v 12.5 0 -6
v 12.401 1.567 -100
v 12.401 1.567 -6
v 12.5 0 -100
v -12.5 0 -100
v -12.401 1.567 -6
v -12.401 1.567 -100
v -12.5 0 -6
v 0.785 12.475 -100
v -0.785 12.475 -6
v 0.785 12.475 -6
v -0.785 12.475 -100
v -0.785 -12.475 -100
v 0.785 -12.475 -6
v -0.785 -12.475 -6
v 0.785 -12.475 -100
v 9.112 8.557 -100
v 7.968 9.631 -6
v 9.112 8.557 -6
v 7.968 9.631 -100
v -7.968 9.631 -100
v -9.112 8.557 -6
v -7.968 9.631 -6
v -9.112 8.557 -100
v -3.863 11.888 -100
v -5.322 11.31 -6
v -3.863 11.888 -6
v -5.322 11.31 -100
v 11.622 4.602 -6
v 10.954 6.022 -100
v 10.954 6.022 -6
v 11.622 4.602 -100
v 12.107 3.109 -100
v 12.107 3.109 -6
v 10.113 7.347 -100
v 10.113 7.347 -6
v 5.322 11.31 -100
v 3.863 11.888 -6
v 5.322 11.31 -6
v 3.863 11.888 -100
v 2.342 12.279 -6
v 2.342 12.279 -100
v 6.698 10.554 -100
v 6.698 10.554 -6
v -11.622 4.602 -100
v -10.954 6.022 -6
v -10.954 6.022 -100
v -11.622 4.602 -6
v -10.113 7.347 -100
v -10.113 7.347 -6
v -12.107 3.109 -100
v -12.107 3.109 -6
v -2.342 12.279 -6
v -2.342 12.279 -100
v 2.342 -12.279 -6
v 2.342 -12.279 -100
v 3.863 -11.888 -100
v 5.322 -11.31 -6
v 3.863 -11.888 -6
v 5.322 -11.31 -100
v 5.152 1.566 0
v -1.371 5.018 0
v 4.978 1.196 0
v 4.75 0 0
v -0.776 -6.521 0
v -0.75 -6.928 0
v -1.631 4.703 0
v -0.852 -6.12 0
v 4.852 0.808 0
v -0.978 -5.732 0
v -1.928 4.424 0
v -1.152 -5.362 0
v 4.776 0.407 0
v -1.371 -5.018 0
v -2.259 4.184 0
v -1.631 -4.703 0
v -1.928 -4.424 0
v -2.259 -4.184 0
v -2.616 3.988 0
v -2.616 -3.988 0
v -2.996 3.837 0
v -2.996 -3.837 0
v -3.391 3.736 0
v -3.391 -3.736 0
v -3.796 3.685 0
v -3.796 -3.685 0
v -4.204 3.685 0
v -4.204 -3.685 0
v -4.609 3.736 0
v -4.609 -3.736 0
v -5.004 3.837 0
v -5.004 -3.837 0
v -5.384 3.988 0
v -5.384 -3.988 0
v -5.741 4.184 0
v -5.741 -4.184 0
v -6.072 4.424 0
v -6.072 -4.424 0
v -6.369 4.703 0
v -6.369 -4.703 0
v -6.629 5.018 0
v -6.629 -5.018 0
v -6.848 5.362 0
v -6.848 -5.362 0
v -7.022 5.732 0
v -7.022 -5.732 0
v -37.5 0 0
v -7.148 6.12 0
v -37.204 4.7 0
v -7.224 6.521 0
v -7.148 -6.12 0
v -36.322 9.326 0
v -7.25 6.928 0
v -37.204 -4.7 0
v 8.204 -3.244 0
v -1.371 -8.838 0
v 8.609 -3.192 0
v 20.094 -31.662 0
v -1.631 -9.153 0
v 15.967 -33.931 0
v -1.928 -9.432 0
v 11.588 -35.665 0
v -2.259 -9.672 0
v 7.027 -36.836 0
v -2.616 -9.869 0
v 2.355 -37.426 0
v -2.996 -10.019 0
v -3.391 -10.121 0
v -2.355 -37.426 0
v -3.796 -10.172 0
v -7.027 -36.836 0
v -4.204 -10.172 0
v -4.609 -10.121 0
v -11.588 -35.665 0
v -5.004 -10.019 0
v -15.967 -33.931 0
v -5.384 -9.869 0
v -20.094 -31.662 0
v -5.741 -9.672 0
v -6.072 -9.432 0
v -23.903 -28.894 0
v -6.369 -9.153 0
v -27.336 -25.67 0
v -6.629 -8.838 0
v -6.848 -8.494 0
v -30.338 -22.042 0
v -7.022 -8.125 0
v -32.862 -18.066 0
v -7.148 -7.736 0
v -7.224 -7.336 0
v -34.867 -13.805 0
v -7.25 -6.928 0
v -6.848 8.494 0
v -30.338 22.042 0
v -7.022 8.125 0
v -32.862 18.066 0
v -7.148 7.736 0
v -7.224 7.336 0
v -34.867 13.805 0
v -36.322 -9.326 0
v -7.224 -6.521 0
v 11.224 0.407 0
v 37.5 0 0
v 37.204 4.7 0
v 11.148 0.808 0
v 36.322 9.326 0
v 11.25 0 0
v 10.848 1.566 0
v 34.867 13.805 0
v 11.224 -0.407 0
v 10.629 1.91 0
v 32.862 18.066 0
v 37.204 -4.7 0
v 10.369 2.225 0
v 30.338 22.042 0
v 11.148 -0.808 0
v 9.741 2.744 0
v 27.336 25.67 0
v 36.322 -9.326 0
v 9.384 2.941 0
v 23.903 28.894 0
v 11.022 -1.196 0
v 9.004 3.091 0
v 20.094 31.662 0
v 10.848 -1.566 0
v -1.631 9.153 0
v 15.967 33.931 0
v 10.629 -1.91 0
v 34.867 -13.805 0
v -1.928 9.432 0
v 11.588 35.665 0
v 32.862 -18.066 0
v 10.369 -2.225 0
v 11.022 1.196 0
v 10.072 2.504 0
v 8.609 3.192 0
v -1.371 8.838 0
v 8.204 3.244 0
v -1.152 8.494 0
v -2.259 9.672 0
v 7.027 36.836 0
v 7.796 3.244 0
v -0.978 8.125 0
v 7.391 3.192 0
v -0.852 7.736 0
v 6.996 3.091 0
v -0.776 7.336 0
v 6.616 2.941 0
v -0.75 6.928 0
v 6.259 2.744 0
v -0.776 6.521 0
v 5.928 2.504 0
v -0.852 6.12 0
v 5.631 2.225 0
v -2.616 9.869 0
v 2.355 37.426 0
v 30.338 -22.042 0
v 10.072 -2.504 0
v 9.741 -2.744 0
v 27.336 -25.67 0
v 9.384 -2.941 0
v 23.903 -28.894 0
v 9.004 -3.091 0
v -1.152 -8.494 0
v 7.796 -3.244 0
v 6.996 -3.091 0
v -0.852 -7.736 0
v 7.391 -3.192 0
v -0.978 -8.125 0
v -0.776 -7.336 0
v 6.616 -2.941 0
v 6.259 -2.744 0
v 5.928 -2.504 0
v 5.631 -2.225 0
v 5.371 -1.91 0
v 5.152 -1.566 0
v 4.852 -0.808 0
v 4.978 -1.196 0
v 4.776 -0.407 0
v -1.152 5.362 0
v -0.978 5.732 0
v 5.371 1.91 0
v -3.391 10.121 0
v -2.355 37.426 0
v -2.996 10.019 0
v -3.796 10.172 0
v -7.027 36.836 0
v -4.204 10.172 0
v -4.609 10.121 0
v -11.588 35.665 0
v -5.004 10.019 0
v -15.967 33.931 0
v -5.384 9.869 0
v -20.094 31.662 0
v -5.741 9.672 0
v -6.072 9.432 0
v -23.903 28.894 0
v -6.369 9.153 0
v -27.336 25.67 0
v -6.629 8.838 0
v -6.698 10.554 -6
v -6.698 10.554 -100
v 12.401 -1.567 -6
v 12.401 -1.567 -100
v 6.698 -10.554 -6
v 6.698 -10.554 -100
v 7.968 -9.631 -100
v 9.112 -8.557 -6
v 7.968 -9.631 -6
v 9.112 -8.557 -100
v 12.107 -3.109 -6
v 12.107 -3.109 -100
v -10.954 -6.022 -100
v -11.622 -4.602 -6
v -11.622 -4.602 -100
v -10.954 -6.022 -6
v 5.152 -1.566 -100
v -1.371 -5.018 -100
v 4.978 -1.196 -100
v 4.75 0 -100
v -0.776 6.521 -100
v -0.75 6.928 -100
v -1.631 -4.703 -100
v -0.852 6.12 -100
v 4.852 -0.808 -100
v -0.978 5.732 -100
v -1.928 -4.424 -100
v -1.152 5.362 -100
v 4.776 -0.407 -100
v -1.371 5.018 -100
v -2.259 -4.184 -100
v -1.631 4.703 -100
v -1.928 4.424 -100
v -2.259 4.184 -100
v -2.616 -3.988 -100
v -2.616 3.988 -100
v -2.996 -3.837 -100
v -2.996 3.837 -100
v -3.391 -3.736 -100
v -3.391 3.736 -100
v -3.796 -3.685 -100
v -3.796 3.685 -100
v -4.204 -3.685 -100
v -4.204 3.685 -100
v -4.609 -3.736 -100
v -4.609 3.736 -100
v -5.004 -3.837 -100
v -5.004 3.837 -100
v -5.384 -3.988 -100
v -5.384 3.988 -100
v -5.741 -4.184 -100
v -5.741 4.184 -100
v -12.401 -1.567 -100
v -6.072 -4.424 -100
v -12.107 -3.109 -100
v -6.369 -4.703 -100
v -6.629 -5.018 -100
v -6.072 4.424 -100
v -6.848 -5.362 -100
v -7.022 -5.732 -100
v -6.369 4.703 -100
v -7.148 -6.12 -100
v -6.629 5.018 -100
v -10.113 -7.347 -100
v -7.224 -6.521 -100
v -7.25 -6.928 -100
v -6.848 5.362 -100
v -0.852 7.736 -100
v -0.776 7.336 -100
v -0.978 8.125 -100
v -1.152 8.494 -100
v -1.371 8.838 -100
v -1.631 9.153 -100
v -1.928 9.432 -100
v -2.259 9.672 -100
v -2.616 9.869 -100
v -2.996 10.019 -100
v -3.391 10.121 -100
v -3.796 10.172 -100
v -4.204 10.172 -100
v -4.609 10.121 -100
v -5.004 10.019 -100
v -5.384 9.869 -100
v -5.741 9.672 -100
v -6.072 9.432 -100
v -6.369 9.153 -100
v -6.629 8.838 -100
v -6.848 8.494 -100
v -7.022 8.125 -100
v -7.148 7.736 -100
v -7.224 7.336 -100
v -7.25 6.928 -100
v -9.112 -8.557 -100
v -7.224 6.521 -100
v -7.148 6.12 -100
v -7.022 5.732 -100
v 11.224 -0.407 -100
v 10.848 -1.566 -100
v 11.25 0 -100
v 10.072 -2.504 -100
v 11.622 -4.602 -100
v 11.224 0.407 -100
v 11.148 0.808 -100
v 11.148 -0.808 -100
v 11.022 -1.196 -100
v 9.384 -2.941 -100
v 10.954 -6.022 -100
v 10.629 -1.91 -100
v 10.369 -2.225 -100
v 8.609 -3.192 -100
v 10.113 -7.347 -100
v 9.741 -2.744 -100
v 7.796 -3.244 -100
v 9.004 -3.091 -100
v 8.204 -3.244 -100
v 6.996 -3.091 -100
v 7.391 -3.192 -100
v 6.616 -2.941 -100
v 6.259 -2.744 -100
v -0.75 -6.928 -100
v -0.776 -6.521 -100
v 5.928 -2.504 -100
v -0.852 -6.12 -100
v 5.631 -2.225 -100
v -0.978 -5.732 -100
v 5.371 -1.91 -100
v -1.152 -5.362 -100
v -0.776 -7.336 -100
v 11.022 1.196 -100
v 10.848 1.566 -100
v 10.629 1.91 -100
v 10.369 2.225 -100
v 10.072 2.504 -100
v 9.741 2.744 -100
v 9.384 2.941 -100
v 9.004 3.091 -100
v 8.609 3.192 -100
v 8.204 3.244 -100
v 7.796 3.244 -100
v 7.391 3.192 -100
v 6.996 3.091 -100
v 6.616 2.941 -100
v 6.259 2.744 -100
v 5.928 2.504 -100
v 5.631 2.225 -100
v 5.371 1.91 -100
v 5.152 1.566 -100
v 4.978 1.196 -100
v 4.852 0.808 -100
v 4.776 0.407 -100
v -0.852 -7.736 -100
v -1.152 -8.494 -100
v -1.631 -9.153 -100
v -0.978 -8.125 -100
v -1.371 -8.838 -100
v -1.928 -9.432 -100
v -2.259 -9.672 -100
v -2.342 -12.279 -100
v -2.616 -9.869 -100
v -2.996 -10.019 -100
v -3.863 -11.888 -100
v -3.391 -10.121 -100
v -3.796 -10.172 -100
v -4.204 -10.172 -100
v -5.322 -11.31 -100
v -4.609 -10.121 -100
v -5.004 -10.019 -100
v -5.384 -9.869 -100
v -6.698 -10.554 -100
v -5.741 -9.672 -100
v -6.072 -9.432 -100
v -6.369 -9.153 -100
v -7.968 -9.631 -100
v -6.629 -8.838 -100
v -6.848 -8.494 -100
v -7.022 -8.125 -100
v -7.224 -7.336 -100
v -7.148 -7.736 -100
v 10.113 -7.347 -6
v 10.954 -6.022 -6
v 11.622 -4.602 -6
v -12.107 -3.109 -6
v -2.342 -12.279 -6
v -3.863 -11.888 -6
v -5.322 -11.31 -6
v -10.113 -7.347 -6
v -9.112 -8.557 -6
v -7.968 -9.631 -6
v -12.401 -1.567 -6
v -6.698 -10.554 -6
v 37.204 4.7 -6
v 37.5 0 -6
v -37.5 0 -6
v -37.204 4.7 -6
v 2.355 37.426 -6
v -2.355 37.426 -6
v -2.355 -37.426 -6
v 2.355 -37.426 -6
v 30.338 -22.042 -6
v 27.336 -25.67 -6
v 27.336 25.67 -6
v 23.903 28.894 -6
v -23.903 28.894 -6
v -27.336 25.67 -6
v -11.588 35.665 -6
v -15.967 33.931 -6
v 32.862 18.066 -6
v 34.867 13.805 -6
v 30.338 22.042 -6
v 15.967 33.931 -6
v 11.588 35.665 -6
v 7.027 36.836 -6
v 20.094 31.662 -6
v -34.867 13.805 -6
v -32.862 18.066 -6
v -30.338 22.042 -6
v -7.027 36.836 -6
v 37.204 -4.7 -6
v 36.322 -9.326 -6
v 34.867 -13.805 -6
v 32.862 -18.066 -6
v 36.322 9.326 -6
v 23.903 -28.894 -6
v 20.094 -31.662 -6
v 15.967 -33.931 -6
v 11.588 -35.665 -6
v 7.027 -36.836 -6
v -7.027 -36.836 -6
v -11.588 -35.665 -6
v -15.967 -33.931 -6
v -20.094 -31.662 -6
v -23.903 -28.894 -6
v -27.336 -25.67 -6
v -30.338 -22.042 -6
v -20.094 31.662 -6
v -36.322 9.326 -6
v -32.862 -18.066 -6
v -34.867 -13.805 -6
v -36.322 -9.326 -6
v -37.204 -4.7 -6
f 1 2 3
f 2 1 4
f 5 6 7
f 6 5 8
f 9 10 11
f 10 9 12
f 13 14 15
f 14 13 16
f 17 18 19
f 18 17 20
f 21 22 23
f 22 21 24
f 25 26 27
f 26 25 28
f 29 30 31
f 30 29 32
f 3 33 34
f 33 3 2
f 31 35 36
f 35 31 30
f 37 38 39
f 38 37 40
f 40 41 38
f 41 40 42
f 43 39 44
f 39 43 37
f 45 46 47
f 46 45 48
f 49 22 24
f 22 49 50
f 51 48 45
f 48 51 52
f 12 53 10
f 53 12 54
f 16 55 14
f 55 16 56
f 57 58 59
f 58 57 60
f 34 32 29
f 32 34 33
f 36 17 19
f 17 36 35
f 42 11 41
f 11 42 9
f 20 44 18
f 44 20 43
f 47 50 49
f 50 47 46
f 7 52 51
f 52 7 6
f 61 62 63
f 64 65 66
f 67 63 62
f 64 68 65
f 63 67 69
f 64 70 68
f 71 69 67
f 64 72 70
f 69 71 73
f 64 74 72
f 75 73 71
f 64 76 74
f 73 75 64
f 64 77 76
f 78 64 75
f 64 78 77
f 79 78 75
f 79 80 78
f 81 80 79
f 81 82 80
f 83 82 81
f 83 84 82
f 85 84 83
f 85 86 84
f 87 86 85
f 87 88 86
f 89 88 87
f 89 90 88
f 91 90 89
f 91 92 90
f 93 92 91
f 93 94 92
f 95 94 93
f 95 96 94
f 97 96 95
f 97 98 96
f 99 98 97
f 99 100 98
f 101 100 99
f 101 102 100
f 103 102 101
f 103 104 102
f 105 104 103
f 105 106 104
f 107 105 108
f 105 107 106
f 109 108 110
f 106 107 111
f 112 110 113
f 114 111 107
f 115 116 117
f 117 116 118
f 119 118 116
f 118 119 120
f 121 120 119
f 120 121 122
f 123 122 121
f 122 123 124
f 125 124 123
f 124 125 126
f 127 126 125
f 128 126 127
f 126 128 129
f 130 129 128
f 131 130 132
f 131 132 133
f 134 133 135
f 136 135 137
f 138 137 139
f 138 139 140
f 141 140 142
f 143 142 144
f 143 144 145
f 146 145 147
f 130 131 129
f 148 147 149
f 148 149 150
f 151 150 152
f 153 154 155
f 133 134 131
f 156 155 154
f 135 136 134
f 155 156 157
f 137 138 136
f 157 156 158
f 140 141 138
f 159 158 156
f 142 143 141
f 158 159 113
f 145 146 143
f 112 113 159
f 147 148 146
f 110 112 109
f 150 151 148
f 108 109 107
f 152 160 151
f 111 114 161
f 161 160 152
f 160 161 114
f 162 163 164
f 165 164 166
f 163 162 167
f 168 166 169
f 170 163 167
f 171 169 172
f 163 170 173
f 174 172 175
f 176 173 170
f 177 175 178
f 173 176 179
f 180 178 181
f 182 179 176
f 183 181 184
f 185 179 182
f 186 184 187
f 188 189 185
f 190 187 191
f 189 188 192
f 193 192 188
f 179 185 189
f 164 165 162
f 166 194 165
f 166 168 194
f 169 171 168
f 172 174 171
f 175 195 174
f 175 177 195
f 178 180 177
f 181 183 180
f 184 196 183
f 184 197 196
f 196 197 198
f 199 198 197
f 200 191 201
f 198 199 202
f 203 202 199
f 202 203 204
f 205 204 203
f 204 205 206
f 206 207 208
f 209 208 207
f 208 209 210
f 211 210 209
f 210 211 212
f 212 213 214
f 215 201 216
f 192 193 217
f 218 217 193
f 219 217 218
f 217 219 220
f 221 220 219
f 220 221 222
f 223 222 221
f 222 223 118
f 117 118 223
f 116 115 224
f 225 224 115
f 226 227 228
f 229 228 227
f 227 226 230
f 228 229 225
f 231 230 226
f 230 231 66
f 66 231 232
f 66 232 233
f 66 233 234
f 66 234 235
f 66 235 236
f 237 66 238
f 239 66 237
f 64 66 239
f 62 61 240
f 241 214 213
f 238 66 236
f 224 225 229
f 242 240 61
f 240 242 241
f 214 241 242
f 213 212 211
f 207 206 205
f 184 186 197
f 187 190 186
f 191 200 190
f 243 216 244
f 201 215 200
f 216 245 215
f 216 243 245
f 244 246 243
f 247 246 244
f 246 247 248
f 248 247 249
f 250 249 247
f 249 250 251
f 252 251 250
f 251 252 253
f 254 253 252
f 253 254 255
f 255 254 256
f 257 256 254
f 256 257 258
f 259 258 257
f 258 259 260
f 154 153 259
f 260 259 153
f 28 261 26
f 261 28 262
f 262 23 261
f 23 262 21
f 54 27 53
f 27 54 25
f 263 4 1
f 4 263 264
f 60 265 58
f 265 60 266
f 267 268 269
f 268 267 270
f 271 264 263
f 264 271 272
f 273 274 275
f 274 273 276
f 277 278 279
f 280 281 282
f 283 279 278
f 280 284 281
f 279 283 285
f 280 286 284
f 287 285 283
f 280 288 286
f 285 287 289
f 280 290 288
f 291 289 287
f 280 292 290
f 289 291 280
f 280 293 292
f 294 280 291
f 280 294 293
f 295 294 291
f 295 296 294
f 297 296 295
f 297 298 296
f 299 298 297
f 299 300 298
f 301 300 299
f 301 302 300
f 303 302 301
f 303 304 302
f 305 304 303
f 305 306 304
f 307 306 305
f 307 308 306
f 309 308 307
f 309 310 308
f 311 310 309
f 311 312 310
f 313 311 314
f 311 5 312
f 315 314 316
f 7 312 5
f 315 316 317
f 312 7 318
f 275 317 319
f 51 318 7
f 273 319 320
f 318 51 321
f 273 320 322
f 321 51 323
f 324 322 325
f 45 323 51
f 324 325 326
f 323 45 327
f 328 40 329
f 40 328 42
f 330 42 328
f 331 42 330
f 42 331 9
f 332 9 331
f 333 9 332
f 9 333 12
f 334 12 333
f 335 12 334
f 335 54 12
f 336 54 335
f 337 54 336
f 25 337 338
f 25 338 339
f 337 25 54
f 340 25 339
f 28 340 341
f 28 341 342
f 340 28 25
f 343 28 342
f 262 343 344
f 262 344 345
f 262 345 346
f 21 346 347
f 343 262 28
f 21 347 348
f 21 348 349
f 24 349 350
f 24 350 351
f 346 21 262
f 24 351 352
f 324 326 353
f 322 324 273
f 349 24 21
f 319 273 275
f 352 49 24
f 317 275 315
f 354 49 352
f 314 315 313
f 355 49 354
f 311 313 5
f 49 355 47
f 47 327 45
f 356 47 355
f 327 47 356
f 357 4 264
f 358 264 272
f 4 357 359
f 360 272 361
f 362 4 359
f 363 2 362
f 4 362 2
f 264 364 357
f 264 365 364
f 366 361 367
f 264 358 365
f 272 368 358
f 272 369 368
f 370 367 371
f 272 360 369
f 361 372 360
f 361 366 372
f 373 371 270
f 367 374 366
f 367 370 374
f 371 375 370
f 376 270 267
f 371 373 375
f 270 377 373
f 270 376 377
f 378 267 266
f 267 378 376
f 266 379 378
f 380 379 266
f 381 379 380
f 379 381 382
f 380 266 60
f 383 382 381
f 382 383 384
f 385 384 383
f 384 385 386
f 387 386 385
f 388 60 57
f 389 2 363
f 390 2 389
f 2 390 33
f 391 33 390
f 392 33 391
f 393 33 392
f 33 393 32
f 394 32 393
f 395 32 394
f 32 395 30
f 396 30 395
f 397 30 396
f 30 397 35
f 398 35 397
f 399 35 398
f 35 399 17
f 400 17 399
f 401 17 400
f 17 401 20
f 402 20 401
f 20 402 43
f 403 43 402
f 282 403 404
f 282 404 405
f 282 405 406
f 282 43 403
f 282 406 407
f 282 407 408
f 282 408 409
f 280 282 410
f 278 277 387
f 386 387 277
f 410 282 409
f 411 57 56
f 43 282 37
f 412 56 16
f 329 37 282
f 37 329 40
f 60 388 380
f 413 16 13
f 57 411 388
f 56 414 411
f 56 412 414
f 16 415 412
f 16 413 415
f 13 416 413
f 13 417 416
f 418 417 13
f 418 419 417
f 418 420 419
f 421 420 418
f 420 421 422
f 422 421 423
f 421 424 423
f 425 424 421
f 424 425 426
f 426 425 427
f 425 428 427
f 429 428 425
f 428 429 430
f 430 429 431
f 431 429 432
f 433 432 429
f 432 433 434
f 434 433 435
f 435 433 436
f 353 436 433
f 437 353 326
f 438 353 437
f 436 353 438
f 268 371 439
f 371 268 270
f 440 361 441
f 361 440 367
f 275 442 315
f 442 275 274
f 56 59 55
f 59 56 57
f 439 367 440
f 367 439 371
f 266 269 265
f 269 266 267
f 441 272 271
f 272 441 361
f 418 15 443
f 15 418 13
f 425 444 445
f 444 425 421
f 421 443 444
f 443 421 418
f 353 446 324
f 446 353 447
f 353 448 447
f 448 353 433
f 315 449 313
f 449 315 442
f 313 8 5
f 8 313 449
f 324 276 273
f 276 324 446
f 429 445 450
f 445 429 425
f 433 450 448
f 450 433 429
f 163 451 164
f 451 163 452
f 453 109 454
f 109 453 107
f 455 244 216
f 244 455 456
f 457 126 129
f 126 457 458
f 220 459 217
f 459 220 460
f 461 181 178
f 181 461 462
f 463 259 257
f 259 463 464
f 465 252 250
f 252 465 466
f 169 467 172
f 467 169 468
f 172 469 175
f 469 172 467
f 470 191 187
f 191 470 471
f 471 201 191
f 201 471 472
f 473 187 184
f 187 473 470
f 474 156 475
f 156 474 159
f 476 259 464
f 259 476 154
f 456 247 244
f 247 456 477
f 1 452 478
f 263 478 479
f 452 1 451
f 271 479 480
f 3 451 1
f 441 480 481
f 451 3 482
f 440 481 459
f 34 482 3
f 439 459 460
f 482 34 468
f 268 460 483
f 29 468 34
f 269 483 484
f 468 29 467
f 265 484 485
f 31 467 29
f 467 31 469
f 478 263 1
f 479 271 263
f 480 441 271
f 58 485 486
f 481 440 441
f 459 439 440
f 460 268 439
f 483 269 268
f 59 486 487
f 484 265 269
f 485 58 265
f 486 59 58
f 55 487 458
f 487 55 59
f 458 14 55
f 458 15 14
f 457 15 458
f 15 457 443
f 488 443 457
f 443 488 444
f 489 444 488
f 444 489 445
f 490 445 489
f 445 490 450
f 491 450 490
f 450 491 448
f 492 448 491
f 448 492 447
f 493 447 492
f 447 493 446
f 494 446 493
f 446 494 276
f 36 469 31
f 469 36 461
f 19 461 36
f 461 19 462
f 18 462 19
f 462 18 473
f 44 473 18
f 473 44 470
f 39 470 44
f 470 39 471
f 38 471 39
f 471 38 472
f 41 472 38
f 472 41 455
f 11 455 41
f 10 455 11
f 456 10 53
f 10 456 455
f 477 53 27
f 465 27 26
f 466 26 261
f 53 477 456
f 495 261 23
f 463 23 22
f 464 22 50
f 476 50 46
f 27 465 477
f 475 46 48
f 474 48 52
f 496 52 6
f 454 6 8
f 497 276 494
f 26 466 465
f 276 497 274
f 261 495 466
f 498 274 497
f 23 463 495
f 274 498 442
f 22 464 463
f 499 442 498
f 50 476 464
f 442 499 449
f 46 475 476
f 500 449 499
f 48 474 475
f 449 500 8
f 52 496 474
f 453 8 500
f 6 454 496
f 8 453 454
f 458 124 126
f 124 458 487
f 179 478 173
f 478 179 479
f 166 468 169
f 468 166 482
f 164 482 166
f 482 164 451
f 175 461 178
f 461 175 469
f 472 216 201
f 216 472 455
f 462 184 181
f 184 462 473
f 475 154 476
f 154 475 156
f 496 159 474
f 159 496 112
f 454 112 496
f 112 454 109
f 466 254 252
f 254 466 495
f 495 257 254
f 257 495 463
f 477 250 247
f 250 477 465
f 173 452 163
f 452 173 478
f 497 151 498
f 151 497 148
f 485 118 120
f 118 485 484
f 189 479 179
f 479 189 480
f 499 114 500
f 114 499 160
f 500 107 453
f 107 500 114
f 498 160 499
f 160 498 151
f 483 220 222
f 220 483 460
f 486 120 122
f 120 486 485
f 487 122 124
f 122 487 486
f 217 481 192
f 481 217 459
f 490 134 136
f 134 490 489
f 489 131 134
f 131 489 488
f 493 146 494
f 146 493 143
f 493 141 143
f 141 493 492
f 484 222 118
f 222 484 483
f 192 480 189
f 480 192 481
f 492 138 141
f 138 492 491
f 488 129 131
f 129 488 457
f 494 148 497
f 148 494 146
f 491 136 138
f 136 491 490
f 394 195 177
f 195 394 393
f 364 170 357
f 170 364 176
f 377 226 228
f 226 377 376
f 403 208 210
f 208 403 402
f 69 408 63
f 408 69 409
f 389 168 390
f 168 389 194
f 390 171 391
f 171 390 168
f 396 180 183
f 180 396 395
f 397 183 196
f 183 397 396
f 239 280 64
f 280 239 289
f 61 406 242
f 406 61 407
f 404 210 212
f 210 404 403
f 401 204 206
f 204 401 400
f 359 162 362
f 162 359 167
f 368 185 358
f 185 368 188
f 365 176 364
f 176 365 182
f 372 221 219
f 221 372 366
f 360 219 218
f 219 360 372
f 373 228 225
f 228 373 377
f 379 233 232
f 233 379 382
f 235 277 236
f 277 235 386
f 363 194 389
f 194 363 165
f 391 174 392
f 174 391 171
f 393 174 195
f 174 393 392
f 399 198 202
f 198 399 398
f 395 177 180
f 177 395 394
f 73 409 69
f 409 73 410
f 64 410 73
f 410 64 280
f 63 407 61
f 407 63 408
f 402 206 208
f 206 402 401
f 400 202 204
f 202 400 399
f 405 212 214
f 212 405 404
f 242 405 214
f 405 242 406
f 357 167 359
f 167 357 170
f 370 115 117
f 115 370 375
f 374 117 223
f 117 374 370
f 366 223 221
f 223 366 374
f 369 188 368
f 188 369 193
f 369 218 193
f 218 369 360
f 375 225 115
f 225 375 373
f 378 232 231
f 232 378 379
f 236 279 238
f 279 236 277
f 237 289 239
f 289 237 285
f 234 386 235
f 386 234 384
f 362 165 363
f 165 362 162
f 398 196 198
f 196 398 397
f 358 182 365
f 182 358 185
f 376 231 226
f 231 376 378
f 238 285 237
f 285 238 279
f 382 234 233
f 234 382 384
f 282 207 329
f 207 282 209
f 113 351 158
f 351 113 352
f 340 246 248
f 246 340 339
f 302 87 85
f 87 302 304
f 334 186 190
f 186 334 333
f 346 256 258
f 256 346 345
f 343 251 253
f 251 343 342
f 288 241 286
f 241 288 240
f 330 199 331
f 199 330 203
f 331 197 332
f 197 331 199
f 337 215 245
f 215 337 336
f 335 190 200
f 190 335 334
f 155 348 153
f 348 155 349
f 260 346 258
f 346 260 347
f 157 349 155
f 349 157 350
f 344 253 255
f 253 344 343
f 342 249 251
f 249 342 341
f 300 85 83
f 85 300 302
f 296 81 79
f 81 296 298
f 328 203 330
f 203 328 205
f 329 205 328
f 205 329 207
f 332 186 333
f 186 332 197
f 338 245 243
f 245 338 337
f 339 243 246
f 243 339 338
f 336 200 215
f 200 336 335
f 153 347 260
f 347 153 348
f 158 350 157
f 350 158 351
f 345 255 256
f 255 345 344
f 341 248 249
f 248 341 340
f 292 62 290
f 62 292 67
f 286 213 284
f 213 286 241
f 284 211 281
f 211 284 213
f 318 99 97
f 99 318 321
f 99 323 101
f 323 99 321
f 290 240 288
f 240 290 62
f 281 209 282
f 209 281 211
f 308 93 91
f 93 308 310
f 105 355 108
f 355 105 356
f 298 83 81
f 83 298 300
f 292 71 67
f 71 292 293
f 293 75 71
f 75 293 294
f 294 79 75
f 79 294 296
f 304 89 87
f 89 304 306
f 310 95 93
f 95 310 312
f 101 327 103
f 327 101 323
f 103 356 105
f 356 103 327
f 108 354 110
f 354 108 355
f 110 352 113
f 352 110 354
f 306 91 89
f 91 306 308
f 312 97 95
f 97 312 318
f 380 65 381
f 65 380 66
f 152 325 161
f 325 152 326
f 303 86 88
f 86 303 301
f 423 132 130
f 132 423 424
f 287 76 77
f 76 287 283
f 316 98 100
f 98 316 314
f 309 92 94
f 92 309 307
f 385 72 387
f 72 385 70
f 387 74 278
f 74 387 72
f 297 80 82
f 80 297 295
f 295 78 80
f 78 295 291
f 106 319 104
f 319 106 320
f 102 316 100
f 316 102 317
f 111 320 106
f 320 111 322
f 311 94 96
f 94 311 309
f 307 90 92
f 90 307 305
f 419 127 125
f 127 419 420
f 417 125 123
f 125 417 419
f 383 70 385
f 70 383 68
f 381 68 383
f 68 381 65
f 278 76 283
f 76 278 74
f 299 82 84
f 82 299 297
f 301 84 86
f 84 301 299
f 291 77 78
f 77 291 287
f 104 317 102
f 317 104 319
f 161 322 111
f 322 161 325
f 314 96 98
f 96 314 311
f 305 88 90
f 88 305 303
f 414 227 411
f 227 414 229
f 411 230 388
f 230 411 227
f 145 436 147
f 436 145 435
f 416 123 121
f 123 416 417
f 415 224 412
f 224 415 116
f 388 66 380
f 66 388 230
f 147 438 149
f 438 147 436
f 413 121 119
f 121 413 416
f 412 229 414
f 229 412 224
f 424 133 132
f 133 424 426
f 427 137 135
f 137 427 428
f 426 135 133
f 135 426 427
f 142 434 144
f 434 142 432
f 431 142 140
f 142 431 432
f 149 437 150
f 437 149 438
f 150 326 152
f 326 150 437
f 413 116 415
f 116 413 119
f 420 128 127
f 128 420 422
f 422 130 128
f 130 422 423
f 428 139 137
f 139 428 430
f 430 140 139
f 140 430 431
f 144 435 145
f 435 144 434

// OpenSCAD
$fn = 50;


difference() {
	union() {
		translate(v = [0, 0, -100.0000000000]) {
			cylinder(h = 100, r = 12.5000000000);
		}
		translate(v = [0, 0, -6.0000000000]) {
			cylinder(h = 6, r = 37.5000000000);
		}
	}
	union() {
		#translate(v = [8.0000000000, 0.0000000000, -100]) {
			cylinder(h = 100, r = 3.2500000000);
		}
		#translate(v = [-4.0000000000, 6.9282032303, -100]) {
			cylinder(h = 100, r = 3.2500000000);
		}
		#translate(v = [-4.0000000000, -6.9282032303, -100]) {
			cylinder(h = 100, r = 3.2500000000);
		}
	}
}
